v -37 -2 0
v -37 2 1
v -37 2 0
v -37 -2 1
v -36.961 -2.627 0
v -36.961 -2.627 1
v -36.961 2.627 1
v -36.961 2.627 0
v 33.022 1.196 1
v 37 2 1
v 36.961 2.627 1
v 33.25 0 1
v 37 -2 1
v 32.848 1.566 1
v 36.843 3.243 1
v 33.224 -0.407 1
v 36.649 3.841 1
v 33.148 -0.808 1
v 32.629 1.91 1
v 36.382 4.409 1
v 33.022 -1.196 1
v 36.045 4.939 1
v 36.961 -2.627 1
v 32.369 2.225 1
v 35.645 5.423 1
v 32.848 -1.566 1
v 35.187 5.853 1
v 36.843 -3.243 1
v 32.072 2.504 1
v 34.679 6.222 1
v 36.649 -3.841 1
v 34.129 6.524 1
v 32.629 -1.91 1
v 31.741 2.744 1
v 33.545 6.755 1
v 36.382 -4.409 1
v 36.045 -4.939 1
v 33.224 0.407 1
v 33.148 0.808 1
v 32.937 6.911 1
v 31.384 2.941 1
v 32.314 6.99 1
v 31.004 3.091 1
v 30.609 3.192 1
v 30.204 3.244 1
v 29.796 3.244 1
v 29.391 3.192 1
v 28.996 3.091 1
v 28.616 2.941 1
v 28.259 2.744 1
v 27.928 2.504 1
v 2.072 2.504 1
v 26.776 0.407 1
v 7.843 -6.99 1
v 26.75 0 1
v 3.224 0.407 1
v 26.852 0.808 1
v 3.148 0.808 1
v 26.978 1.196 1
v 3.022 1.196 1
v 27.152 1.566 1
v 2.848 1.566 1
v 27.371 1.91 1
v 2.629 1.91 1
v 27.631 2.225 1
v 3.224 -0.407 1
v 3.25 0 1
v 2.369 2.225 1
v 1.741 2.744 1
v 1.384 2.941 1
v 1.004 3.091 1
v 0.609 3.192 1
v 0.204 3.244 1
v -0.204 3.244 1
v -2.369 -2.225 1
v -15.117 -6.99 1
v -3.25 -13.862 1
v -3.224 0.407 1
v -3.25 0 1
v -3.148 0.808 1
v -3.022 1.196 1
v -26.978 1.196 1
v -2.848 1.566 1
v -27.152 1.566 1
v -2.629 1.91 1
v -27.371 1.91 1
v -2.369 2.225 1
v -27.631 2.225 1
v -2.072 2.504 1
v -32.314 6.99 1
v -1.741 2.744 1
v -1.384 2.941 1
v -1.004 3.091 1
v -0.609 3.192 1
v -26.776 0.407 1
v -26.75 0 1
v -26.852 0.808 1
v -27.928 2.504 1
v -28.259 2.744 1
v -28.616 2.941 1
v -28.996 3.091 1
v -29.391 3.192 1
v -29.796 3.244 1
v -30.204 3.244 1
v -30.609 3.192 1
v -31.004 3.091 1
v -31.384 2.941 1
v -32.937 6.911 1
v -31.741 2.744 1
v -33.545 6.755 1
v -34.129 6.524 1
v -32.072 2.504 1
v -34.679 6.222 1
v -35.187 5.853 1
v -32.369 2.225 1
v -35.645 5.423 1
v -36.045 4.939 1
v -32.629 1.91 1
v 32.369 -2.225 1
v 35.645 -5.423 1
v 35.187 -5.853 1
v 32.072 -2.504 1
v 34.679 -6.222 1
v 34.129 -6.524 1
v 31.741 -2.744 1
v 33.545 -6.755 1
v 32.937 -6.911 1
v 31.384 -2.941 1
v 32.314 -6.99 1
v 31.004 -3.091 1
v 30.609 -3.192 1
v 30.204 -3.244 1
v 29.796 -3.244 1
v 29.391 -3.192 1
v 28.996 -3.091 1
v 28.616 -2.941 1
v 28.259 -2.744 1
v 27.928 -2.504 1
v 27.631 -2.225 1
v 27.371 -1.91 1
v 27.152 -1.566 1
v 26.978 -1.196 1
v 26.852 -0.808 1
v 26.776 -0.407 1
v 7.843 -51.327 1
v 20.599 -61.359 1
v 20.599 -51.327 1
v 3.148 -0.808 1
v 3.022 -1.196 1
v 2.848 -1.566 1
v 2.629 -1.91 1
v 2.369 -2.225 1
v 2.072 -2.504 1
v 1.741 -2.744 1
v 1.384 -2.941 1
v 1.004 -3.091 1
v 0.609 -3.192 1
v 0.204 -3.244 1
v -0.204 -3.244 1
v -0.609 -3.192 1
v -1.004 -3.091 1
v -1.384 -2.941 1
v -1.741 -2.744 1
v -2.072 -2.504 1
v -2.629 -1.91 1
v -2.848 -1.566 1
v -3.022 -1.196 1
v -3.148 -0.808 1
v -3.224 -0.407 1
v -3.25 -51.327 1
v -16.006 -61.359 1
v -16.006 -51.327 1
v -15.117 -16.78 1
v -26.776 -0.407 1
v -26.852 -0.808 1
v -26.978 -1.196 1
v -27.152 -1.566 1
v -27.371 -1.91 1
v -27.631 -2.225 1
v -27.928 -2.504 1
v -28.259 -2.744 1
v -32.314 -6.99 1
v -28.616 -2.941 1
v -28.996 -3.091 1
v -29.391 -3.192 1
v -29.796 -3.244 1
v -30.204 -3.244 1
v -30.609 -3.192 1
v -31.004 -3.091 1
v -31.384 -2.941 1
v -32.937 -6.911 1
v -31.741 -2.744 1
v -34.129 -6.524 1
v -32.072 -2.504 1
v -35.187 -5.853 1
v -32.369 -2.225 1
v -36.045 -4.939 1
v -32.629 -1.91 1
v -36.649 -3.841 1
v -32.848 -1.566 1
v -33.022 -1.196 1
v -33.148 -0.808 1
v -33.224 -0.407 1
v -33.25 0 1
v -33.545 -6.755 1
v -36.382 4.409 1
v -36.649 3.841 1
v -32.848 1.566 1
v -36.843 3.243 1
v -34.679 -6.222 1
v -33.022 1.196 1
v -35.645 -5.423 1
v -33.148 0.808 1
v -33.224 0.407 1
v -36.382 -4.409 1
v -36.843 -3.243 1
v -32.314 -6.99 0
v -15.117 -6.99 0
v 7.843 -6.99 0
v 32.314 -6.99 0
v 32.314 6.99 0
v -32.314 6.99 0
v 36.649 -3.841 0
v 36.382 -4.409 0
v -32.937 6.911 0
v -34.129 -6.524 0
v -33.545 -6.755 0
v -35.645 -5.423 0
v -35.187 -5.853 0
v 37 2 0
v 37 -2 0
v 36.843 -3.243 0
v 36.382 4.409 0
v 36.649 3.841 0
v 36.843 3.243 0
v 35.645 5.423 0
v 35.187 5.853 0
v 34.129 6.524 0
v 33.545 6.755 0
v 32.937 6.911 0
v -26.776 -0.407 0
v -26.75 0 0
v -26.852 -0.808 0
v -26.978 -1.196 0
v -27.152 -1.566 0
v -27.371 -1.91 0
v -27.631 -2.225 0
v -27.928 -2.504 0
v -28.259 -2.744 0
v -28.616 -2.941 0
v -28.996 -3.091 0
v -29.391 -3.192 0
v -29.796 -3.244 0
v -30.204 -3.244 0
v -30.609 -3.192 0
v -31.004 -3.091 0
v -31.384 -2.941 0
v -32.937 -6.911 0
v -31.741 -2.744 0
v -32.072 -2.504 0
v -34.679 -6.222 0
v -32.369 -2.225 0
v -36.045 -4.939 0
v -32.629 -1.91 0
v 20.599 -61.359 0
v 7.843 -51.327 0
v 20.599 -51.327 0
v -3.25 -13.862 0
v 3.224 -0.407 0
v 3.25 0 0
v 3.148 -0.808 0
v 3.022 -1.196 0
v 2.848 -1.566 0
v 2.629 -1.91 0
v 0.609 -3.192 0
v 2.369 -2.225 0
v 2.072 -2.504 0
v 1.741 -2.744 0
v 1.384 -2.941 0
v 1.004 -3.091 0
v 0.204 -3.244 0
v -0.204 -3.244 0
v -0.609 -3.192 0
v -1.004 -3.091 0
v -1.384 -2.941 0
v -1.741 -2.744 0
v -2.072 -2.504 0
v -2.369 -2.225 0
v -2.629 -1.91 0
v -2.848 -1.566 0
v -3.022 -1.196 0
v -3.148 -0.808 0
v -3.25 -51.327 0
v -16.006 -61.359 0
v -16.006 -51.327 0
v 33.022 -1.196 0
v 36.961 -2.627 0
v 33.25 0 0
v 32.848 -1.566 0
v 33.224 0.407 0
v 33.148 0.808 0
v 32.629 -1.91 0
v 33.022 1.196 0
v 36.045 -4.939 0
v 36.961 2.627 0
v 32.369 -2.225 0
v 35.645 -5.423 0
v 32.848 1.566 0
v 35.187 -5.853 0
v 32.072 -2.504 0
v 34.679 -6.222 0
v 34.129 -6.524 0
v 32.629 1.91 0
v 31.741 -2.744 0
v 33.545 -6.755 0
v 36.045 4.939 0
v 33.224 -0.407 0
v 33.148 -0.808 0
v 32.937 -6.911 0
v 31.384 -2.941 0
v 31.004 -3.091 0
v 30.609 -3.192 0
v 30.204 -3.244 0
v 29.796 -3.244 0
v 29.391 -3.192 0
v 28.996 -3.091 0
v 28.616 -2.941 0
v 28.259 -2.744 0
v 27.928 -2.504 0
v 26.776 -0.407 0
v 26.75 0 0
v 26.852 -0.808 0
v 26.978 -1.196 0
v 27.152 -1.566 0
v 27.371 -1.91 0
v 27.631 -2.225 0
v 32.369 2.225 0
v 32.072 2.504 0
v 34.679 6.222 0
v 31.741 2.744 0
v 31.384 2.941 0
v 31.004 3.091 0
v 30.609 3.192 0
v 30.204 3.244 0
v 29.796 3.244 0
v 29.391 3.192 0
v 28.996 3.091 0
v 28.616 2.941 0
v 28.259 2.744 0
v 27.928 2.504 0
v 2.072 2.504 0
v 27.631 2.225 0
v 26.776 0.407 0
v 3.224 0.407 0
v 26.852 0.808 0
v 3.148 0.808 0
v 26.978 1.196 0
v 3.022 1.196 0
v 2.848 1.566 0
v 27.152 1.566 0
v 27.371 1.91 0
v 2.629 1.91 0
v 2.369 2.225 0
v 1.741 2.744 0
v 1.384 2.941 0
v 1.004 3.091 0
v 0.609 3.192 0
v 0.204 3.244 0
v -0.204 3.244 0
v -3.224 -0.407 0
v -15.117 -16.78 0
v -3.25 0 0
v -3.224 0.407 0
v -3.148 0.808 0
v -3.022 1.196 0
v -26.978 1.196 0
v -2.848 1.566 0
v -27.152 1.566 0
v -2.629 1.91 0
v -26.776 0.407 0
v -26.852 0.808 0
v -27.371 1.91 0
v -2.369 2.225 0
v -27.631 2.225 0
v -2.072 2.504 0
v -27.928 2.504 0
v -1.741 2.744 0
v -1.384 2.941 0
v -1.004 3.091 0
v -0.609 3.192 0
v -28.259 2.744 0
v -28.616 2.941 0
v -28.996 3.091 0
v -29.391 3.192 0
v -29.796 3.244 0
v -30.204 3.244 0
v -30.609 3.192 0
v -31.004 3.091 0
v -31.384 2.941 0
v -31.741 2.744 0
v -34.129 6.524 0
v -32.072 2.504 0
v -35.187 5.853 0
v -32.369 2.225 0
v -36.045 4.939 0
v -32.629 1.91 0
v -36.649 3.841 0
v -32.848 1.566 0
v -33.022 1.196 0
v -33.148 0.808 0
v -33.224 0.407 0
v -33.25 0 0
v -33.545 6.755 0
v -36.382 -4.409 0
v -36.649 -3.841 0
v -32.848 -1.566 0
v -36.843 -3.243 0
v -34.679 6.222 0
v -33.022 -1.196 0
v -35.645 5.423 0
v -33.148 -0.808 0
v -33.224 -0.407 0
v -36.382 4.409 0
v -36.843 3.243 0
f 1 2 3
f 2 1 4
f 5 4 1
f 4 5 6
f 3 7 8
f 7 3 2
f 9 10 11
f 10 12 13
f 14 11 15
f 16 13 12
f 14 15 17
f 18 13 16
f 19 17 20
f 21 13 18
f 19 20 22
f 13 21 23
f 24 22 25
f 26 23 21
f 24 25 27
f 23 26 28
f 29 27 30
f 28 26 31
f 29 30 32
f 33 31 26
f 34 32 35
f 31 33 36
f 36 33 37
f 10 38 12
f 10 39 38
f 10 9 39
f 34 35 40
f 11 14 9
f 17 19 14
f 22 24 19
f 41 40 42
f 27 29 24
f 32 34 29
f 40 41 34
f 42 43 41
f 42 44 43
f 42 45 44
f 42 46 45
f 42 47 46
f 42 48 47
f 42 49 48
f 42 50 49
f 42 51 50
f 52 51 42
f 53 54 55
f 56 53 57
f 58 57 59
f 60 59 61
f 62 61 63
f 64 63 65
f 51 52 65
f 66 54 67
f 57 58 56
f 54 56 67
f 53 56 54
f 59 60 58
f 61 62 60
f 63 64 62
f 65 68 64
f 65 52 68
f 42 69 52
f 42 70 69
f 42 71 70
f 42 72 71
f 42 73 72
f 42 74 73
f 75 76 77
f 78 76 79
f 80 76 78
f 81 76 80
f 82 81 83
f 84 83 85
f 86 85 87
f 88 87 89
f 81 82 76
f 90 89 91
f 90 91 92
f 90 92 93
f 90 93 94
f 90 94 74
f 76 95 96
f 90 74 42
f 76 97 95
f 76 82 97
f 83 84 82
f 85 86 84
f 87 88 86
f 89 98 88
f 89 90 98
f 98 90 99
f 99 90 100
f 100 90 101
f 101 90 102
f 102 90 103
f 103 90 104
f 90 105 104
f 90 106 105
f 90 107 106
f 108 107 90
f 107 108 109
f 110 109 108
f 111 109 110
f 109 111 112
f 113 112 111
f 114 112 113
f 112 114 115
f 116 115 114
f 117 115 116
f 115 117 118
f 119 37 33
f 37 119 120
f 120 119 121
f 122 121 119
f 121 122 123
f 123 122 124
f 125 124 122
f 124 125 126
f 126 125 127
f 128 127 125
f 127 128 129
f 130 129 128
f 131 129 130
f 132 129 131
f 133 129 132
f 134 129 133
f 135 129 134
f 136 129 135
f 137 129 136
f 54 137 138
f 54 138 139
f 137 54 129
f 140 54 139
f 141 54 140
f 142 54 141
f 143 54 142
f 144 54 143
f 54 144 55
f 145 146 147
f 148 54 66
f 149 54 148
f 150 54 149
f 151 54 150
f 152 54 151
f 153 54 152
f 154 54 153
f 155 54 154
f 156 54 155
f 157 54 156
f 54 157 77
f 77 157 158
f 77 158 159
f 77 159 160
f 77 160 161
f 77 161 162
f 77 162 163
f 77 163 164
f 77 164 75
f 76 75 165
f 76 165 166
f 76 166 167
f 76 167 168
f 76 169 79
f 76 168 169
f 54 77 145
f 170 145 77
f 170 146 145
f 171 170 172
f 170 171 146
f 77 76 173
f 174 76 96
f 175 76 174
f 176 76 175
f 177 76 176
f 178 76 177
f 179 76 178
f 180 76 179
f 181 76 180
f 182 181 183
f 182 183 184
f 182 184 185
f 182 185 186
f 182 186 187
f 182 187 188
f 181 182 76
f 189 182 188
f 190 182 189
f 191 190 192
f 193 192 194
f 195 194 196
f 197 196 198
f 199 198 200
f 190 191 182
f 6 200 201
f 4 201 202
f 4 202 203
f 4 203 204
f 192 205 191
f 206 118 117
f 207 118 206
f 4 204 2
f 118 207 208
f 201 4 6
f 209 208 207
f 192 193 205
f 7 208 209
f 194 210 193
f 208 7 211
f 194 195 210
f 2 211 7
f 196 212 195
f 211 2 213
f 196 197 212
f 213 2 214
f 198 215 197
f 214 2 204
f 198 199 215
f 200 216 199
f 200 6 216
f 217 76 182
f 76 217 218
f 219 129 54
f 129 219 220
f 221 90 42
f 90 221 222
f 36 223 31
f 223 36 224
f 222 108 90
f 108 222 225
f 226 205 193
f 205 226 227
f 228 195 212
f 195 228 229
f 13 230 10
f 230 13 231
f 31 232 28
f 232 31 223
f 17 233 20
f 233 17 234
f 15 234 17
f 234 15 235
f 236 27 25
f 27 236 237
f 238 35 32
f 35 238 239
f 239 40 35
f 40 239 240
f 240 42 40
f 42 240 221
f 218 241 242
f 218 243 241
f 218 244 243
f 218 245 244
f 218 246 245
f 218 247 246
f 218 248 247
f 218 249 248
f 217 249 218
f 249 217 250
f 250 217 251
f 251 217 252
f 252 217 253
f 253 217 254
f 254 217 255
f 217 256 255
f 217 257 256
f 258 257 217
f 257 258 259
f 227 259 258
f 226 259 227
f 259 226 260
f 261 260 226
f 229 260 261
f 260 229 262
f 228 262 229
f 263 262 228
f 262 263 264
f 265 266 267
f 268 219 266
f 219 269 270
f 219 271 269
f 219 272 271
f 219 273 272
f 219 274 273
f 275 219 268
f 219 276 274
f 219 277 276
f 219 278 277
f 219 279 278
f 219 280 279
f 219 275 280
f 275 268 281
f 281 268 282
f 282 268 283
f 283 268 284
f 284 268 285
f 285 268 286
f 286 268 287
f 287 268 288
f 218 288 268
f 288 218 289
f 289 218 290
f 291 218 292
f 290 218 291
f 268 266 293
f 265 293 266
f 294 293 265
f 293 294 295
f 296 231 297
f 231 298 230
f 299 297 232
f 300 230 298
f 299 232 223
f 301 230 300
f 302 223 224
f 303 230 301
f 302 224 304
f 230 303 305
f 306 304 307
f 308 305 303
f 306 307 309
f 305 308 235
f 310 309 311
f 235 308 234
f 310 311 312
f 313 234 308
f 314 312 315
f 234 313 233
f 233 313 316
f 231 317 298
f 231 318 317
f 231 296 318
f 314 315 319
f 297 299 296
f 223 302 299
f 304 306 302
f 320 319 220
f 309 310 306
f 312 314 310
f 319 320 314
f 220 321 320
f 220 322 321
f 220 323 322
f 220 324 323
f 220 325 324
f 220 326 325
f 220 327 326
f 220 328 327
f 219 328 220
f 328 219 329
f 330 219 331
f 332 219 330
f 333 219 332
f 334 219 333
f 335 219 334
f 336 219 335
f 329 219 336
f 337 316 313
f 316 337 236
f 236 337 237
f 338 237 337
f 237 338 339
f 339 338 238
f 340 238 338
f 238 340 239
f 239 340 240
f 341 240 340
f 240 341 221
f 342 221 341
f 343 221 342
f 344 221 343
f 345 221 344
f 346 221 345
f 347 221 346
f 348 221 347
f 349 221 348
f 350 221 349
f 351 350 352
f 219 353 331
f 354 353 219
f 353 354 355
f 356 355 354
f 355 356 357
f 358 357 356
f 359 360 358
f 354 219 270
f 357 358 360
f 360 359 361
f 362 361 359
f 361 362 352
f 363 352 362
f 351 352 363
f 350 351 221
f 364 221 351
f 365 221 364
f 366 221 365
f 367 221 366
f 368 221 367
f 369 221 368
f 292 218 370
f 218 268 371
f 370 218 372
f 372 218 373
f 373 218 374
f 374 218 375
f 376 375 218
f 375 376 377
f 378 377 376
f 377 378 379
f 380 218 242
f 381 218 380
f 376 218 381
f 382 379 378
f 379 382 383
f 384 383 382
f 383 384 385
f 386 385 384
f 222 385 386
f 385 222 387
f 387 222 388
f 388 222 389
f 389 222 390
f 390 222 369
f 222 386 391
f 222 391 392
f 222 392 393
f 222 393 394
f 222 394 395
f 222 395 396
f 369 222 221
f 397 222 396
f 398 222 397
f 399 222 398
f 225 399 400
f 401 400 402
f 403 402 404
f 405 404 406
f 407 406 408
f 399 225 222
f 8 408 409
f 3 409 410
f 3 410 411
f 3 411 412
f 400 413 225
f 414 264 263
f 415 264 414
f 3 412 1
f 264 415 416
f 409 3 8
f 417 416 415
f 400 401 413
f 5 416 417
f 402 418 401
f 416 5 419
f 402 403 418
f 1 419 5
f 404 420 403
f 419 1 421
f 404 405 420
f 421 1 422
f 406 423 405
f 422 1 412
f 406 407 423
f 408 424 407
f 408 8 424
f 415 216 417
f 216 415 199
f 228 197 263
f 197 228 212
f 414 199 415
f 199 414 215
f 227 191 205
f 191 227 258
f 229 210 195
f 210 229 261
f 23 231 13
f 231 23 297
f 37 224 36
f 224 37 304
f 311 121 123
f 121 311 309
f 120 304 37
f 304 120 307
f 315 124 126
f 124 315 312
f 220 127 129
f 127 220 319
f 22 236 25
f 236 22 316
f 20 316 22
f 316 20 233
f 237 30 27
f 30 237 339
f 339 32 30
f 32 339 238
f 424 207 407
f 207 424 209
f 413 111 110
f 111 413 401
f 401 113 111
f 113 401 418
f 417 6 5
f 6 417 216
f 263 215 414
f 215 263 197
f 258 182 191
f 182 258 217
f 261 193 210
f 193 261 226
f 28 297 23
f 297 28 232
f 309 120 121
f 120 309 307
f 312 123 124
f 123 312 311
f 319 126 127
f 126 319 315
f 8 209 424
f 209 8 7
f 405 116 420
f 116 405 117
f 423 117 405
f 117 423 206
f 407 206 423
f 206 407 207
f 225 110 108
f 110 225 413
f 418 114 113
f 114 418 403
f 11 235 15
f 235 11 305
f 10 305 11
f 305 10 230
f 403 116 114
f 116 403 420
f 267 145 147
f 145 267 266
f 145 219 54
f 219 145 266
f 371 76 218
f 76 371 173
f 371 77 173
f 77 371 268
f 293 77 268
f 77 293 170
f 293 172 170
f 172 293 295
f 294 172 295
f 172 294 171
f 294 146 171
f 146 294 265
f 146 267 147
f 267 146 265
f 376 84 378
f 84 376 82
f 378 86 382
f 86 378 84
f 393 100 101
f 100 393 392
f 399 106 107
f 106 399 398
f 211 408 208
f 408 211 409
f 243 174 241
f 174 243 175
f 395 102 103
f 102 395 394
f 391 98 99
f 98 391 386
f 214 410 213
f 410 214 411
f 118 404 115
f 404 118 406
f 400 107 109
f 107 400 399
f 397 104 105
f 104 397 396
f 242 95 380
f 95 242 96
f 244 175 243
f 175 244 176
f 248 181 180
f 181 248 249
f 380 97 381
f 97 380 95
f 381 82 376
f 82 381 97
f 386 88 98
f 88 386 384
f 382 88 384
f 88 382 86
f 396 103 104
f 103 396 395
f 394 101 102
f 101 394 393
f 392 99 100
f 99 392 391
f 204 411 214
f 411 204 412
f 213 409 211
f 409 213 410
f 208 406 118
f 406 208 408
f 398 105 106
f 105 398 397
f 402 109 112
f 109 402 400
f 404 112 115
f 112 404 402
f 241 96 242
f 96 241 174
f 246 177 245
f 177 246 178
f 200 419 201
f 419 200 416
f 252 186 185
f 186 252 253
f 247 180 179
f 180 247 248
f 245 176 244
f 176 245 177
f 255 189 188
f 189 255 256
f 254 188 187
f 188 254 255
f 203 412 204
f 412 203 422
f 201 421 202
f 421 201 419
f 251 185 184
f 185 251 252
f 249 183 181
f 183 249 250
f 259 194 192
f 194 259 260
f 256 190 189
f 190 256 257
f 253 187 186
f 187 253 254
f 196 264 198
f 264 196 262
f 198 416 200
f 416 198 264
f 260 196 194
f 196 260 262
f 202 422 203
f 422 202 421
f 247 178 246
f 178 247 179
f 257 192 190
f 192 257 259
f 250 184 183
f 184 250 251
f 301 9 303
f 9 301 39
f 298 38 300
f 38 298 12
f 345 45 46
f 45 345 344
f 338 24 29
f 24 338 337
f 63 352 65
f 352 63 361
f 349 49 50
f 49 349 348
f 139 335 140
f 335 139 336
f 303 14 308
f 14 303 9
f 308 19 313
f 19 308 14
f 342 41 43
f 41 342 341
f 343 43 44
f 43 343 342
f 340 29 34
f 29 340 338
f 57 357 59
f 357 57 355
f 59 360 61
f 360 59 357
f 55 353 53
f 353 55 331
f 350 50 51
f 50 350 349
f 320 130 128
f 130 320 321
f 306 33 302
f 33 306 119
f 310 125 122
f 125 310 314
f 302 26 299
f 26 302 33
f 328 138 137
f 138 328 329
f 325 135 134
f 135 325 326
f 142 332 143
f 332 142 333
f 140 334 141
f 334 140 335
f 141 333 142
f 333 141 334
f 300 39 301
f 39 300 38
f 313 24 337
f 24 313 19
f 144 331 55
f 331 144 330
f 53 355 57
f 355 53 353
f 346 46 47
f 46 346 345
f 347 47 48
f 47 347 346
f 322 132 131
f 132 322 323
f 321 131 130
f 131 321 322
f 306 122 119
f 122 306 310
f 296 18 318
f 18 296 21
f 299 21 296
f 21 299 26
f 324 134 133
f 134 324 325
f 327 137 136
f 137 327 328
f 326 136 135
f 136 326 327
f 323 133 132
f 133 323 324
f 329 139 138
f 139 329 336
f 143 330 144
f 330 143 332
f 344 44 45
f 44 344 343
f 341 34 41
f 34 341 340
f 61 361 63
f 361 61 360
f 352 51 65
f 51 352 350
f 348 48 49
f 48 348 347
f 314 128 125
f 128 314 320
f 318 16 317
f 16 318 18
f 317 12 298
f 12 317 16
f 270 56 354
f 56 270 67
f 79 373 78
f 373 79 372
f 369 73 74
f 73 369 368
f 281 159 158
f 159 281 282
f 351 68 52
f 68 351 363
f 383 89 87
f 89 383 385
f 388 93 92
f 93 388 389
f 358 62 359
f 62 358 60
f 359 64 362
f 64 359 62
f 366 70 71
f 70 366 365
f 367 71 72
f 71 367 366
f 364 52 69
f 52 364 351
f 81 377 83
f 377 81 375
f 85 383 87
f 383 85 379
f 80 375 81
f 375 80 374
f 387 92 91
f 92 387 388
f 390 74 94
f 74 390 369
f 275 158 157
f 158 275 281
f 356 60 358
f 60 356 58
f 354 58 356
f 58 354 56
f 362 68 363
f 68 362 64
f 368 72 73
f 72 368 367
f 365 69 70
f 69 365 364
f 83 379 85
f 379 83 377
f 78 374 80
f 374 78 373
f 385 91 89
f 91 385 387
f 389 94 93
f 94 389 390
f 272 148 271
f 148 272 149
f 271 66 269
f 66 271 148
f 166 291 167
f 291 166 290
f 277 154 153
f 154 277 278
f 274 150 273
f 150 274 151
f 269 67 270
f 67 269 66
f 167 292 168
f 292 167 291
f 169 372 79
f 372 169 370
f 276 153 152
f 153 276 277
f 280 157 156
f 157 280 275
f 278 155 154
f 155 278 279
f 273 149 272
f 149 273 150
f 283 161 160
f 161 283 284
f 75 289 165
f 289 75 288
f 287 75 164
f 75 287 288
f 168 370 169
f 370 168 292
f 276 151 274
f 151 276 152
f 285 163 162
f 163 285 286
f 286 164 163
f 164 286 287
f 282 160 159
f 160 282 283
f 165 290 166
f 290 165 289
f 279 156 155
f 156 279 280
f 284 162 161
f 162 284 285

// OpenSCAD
$fn = 50;


difference() {
	union() {
		translate(v = [0, 0, 0]) {
			rotate(a = [0, 0, 0]) {
				hull() {
					translate(v = [-32.0000000000, 2.0000000000, 0]) {
						rotate(a = [0, 0, 0]) {
							translate(v = [0, 0, 0]) {
								rotate(a = [0, 0, 0]) {
									cylinder(h = 1, r = 5);
								}
							}
						}
					}
					translate(v = [32.0000000000, 2.0000000000, 0]) {
						rotate(a = [0, 0, 0]) {
							translate(v = [0, 0, 0]) {
								rotate(a = [0, 0, 0]) {
									cylinder(h = 1, r = 5);
								}
							}
						}
					}
					translate(v = [-32.0000000000, -2.0000000000, 0]) {
						rotate(a = [0, 0, 0]) {
							translate(v = [0, 0, 0]) {
								rotate(a = [0, 0, 0]) {
									cylinder(h = 1, r = 5);
								}
							}
						}
					}
					translate(v = [32.0000000000, -2.0000000000, 0]) {
						rotate(a = [0, 0, 0]) {
							translate(v = [0, 0, 0]) {
								rotate(a = [0, 0, 0]) {
									cylinder(h = 1, r = 5);
								}
							}
						}
					}
				}
			}
		}
		translate(v = [0, -5, 0]) {
			rotate(a = [0, 0, 0]) {
				linear_extrude(height = 1) {
					text(font = "DejaVu Sans Mono:style=Bold", halign = "center", size = 57.0000000000, text = "1", valign = "top");
				}
			}
		}
	}
	union() {
		translate(v = [-30.0000000000, 0.0000000000, -125.0000000000]) {
			rotate(a = [0, 0, 0]) {
				cylinder(h = 250, r = 3.2500000000);
			}
		}
		translate(v = [30.0000000000, 0.0000000000, -125.0000000000]) {
			rotate(a = [0, 0, 0]) {
				cylinder(h = 250, r = 3.2500000000);
			}
		}
		translate(v = [30.0000000000, 0.0000000000, -125.0000000000]) {
			rotate(a = [0, 0, 0]) {
				cylinder(h = 250, r = 3.2500000000);
			}
		}
		translate(v = [0, 0, -125.0000000000]) {
			rotate(a = [0, 0, 0]) {
				cylinder(h = 250, r = 3.2500000000);
			}
		}
	}
}
